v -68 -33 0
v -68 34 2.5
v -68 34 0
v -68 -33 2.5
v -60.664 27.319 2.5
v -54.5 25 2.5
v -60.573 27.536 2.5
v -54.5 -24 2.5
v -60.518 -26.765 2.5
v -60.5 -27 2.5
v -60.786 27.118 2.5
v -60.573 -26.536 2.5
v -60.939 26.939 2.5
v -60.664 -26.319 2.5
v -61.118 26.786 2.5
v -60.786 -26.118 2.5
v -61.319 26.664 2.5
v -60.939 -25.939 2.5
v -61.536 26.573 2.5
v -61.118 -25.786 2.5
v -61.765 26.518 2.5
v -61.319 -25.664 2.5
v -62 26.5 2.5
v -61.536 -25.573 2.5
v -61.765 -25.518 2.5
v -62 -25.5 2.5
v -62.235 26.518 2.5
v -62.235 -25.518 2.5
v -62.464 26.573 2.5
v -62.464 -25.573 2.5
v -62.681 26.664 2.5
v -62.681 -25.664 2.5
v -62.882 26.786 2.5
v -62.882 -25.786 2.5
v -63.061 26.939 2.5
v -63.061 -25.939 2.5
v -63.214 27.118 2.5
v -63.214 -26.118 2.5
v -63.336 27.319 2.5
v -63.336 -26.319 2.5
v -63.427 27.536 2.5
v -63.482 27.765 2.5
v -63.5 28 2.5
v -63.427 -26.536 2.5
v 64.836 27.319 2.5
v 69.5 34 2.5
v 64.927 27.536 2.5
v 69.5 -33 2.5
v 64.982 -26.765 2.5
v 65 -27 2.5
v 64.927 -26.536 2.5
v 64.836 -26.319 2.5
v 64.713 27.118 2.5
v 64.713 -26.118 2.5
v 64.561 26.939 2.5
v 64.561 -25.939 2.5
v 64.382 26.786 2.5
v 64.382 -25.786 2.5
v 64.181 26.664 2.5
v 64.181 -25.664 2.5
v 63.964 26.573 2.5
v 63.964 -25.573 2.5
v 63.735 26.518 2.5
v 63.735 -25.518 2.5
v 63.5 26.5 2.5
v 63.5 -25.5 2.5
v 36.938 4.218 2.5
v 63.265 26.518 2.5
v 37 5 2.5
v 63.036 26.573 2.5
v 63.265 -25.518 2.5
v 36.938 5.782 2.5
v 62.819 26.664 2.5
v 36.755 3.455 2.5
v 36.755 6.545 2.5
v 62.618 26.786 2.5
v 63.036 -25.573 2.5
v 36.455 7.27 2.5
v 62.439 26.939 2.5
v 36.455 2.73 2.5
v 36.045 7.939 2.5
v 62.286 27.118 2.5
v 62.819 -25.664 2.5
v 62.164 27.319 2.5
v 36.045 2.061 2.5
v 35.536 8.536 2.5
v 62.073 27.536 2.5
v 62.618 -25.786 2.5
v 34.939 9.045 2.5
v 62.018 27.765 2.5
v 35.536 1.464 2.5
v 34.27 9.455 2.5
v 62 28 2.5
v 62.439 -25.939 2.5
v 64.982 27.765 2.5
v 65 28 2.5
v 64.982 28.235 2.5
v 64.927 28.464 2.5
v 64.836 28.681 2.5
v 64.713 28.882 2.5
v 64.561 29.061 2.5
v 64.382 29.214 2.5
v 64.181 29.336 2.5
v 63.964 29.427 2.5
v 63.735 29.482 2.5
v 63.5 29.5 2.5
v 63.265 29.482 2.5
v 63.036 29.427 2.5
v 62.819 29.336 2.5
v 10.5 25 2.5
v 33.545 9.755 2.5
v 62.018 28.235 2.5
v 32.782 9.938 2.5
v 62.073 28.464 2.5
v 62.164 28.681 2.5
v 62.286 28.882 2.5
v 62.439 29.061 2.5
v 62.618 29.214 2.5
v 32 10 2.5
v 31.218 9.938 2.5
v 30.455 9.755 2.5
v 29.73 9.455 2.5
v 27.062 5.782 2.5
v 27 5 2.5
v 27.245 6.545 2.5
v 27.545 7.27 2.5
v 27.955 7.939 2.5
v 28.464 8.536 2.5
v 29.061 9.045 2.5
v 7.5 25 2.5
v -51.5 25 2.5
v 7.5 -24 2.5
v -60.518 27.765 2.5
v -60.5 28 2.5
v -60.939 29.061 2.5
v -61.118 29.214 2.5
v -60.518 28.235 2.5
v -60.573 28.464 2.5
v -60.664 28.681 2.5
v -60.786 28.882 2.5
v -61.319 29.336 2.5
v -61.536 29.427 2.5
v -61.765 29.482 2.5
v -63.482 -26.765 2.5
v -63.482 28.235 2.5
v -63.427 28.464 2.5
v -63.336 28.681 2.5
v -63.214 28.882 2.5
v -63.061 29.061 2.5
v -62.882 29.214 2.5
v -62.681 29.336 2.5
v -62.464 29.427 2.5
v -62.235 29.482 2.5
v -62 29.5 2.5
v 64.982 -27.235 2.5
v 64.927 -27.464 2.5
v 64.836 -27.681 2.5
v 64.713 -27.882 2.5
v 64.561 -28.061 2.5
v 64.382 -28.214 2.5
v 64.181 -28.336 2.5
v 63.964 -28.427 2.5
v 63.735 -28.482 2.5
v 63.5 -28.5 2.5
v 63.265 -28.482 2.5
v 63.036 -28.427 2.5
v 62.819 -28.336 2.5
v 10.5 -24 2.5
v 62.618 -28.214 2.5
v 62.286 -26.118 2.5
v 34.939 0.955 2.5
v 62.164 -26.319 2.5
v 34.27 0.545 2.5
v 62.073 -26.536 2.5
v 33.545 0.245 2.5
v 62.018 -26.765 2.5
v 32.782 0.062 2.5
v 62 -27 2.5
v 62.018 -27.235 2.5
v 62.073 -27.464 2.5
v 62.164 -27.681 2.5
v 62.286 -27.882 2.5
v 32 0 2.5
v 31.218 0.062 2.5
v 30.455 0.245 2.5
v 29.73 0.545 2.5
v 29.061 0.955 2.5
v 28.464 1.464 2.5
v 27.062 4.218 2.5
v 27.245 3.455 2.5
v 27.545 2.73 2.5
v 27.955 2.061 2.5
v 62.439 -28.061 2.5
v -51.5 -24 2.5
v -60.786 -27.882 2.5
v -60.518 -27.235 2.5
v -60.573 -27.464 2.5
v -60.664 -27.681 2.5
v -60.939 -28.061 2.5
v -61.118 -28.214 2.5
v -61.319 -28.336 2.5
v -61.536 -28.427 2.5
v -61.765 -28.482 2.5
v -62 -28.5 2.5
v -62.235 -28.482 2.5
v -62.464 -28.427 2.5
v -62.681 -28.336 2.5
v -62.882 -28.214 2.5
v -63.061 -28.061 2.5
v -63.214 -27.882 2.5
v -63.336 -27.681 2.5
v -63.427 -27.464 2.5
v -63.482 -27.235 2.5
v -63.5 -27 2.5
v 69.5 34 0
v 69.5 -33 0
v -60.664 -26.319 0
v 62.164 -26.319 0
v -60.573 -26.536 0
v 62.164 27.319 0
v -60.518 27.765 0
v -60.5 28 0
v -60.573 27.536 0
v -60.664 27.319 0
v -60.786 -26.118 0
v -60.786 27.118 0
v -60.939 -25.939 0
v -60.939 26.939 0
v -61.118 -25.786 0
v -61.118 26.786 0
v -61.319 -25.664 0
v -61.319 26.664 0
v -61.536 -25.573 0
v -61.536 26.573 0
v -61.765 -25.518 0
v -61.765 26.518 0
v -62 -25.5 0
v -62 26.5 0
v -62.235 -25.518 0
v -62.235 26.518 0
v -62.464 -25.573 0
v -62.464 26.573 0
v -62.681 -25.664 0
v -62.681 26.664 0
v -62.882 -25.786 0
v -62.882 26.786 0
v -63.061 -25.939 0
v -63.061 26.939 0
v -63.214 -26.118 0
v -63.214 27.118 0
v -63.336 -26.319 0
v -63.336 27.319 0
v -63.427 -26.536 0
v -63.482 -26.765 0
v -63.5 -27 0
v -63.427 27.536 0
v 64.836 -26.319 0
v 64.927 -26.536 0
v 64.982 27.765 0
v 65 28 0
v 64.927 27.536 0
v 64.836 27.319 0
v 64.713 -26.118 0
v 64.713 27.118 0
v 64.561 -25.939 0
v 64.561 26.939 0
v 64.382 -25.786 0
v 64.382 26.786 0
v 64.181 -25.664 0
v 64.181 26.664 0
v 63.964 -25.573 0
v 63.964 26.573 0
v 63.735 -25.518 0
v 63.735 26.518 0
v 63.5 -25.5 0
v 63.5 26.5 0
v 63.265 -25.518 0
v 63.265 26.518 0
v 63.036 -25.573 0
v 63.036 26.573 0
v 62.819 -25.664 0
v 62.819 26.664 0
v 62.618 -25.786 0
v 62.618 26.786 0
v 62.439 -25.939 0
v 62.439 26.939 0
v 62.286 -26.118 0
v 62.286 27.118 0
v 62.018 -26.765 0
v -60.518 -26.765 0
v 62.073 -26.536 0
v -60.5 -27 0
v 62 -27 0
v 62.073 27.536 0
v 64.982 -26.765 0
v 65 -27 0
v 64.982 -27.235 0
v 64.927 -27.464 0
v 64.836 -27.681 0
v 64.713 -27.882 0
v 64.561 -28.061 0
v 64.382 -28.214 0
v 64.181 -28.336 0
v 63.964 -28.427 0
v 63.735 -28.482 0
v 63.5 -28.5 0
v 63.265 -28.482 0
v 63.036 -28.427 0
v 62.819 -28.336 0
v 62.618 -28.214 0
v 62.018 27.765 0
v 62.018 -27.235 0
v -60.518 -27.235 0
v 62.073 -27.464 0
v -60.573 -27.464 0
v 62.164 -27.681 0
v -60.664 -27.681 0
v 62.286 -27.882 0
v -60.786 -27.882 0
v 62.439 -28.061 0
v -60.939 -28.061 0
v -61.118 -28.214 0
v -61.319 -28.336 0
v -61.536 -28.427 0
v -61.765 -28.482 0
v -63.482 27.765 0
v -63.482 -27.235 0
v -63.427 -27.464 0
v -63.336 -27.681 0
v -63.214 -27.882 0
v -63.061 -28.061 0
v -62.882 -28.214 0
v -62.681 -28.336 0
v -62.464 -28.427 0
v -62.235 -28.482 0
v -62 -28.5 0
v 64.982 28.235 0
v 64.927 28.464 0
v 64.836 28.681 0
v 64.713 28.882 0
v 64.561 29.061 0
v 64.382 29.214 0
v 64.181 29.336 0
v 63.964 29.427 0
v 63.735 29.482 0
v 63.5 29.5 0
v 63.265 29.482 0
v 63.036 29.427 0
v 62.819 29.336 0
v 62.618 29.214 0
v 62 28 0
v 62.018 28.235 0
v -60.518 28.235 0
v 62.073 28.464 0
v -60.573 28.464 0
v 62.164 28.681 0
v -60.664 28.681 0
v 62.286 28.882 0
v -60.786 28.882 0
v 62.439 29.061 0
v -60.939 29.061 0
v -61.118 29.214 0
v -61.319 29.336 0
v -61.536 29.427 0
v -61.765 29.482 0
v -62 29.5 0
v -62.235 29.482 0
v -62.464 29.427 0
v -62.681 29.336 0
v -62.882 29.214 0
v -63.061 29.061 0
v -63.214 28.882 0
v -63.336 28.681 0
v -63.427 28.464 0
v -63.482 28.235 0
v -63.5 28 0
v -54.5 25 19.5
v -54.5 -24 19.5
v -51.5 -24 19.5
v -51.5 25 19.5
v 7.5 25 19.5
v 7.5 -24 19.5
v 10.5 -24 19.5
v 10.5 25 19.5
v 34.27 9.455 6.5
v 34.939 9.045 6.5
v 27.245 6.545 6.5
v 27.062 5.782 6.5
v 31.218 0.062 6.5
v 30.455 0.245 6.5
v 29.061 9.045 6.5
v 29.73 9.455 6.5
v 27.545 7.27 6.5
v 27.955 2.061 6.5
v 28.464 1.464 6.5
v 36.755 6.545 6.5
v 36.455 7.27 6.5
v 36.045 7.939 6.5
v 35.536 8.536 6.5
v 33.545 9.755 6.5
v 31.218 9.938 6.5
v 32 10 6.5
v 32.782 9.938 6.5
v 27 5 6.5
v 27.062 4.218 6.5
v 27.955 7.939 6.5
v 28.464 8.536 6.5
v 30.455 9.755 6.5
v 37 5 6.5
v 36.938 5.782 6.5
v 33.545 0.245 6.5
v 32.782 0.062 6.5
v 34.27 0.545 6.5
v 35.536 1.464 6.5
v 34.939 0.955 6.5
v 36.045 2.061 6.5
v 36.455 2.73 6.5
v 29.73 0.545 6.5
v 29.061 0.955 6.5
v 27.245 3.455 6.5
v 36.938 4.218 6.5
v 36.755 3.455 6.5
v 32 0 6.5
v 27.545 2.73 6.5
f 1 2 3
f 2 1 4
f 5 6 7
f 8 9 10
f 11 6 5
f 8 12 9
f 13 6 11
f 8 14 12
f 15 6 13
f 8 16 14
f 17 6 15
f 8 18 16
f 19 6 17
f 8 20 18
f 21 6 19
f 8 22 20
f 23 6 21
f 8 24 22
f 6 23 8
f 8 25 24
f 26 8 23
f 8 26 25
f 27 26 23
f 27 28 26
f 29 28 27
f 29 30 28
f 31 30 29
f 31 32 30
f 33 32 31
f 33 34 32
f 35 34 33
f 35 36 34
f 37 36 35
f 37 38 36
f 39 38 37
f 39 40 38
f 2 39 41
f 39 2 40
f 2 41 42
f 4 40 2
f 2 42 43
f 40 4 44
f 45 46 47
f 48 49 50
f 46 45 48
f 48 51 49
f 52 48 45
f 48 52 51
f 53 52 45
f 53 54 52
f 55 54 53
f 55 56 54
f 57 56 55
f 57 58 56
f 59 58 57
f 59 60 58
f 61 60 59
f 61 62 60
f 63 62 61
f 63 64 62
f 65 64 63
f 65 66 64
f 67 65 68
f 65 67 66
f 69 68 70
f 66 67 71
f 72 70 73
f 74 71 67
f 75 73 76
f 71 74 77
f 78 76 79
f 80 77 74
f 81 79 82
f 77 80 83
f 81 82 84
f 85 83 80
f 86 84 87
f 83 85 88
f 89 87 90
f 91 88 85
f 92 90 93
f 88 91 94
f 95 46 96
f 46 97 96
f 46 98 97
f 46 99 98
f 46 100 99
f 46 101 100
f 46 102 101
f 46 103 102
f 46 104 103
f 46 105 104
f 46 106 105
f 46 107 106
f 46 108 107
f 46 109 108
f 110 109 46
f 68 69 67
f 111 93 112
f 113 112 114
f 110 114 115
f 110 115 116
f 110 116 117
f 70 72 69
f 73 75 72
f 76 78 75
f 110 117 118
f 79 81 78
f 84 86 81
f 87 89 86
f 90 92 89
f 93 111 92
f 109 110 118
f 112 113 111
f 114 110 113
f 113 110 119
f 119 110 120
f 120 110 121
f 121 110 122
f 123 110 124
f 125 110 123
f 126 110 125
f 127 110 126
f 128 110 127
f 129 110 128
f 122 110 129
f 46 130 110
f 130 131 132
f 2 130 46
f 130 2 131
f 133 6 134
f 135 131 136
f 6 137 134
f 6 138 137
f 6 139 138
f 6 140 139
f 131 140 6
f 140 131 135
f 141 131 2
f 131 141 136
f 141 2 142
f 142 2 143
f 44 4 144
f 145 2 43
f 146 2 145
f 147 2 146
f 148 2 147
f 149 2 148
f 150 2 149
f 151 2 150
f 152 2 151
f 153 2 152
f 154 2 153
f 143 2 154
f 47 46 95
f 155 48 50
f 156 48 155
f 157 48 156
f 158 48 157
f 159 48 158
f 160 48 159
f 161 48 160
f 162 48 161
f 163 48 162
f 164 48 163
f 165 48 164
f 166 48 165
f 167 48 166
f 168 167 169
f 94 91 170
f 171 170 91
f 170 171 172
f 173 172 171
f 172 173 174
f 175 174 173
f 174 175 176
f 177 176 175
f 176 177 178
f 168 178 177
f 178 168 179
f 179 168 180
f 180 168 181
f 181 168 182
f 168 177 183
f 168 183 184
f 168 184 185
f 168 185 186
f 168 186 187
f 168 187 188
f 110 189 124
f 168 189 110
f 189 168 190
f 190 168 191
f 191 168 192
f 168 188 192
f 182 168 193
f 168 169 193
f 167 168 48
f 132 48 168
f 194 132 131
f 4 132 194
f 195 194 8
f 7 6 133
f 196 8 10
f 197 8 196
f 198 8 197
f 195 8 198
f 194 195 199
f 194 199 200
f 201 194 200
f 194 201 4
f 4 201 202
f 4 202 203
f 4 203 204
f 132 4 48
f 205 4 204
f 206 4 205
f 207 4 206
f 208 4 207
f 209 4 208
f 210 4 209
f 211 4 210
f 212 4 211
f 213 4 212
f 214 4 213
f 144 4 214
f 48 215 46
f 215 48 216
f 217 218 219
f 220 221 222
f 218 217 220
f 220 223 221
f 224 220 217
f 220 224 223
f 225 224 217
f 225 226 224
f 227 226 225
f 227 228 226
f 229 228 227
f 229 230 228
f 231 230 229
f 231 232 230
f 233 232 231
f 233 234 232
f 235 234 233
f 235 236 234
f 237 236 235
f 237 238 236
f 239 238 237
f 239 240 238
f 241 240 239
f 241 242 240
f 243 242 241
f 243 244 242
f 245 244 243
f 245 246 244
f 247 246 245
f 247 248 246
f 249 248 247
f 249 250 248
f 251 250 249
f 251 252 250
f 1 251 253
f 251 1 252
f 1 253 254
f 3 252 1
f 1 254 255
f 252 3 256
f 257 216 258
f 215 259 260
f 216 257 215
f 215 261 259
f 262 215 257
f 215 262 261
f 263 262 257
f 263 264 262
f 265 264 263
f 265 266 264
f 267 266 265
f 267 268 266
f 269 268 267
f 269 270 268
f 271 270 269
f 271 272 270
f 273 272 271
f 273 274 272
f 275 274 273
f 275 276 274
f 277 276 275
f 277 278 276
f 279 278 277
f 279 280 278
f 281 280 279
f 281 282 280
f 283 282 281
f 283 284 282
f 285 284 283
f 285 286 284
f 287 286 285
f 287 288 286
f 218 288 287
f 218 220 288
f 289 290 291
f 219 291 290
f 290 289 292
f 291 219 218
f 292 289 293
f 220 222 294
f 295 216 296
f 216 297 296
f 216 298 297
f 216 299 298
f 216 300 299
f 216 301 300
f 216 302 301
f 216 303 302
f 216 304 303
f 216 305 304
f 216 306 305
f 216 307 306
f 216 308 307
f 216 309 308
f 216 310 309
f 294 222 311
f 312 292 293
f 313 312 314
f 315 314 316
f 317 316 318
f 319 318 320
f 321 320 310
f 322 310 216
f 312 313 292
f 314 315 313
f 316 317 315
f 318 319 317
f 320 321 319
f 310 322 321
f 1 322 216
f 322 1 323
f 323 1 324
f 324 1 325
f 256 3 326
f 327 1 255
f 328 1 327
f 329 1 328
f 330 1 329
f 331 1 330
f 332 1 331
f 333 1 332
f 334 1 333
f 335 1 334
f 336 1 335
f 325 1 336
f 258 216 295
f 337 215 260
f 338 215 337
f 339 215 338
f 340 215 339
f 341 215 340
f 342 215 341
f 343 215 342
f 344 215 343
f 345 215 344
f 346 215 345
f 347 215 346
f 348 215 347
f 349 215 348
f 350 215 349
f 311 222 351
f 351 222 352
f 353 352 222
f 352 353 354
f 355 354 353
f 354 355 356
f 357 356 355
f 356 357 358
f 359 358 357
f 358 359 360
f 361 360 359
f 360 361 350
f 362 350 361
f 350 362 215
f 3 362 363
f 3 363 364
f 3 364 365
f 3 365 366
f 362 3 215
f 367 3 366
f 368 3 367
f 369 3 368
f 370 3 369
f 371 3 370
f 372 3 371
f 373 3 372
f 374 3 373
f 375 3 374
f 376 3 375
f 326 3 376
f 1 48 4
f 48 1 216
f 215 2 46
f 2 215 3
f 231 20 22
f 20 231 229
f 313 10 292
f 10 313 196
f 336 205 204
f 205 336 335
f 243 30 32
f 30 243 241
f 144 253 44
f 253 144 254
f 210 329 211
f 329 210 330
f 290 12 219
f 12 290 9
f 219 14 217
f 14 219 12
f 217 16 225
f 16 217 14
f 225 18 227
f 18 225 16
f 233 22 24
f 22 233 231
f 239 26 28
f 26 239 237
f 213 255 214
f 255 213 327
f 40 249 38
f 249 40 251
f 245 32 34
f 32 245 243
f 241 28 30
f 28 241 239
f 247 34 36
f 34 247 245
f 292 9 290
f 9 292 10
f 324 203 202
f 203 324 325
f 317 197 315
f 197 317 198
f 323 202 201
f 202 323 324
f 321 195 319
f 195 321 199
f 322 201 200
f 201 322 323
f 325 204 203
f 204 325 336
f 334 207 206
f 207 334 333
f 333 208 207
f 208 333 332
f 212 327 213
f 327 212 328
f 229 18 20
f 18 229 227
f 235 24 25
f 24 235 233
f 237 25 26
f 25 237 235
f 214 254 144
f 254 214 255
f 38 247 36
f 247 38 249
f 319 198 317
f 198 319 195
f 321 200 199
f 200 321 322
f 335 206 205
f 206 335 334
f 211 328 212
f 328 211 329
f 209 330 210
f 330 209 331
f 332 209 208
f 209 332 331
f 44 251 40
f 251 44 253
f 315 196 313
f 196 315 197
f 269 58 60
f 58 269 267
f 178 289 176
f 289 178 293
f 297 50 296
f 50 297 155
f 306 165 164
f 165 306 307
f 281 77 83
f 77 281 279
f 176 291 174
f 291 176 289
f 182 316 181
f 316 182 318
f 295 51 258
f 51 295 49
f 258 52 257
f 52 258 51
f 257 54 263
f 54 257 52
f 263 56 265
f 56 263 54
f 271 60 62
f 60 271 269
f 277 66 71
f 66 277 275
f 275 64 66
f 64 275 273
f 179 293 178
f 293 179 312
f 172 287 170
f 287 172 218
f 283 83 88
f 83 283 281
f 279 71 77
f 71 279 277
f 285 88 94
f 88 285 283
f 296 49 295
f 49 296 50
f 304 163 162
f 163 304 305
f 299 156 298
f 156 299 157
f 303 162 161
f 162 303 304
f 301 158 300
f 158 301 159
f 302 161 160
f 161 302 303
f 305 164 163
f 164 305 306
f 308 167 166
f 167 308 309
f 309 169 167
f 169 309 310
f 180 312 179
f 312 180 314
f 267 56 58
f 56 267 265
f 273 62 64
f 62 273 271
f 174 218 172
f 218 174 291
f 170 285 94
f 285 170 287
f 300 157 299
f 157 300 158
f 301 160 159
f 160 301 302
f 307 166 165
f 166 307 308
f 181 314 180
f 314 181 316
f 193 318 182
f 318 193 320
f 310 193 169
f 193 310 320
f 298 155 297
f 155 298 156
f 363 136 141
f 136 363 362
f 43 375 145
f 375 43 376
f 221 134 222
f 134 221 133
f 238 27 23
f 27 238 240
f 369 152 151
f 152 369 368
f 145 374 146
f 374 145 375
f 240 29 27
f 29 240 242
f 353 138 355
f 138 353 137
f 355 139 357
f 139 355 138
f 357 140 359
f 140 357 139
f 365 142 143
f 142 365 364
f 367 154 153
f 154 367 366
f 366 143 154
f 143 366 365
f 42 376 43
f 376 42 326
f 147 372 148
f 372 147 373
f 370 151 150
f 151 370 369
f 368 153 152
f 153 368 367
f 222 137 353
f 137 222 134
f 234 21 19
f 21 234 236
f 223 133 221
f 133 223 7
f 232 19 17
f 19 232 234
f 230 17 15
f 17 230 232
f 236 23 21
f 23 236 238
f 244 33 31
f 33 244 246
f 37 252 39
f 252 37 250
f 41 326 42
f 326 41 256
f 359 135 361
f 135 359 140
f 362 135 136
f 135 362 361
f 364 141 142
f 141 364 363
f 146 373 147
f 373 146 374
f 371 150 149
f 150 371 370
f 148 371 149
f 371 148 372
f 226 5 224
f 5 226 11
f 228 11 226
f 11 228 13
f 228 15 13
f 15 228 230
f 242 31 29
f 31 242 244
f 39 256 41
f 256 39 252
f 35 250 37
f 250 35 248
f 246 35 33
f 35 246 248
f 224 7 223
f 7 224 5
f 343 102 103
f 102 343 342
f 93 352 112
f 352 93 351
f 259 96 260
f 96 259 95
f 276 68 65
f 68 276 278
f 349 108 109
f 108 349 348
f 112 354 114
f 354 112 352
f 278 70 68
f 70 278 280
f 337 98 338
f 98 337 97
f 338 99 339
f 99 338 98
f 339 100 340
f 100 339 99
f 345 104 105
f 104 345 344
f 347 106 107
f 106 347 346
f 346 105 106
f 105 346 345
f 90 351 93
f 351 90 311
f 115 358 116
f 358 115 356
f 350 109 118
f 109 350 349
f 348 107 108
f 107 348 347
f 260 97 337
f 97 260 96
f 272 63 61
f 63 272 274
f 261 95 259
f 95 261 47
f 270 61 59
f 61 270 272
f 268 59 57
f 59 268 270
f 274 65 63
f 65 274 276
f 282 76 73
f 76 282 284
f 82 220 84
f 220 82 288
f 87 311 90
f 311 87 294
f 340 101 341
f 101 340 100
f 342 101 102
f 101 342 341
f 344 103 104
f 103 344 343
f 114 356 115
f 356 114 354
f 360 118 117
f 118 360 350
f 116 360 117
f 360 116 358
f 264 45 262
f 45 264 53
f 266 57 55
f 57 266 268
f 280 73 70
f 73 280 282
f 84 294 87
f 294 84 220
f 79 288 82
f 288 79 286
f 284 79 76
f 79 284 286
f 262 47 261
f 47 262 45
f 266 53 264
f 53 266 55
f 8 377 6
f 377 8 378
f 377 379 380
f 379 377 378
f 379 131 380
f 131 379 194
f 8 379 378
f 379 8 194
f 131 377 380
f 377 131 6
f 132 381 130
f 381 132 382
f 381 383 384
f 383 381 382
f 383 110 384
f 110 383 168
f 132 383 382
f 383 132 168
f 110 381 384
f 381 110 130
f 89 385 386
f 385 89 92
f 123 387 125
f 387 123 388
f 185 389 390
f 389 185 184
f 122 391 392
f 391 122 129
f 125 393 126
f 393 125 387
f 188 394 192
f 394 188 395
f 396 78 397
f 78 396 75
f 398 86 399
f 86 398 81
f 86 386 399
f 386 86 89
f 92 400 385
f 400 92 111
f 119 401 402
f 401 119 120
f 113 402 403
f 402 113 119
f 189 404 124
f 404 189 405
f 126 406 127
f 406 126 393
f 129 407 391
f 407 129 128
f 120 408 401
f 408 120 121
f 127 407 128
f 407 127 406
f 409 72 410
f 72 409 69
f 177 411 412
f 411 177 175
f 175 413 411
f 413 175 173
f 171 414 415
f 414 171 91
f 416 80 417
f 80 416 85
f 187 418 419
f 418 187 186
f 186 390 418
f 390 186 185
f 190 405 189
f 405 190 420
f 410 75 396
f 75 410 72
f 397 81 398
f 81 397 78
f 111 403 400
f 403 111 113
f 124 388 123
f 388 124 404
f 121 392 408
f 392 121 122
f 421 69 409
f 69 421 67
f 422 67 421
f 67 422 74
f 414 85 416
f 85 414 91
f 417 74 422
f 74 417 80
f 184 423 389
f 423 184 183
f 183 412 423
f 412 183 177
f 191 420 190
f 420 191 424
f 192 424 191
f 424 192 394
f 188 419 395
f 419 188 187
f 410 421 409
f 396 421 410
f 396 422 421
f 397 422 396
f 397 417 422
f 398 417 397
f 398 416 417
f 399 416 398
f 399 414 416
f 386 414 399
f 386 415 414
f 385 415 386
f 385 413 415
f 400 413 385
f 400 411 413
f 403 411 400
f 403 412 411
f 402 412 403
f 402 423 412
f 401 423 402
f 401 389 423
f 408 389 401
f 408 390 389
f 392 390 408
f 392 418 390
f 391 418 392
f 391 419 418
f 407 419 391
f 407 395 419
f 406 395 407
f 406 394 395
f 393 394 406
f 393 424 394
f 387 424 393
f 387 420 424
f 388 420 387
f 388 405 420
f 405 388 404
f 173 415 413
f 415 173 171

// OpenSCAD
translate([-68, -33, 0]) {
	difference() {
		cube([137.5, 67, 2.5]);

		// holes
		diameter = 3;
		translate([6, 6, 0]) {
			cylinder(20, d=diameter, $fn=40);
		}
		translate([131.5,6,0]) {
			cylinder(20, d=diameter, $fn=40);
		}
		translate([6,61,0]) {
			cylinder(20, d=diameter, $fn=40);
		}
		translate([131.5,61,0]) {
			cylinder(20, d=diameter, $fn=40);
		}
	}

	translate([13.5, 9, 2.5]) {
		cube([3, 49, 17]);
	}

	translate([75.5, 9, 2.5]) {
		cube([3, 49, 17]);
	}

	translate([100, 38, 2.5]) {
		cylinder(4,d=10,$fn=40);
	}
}
